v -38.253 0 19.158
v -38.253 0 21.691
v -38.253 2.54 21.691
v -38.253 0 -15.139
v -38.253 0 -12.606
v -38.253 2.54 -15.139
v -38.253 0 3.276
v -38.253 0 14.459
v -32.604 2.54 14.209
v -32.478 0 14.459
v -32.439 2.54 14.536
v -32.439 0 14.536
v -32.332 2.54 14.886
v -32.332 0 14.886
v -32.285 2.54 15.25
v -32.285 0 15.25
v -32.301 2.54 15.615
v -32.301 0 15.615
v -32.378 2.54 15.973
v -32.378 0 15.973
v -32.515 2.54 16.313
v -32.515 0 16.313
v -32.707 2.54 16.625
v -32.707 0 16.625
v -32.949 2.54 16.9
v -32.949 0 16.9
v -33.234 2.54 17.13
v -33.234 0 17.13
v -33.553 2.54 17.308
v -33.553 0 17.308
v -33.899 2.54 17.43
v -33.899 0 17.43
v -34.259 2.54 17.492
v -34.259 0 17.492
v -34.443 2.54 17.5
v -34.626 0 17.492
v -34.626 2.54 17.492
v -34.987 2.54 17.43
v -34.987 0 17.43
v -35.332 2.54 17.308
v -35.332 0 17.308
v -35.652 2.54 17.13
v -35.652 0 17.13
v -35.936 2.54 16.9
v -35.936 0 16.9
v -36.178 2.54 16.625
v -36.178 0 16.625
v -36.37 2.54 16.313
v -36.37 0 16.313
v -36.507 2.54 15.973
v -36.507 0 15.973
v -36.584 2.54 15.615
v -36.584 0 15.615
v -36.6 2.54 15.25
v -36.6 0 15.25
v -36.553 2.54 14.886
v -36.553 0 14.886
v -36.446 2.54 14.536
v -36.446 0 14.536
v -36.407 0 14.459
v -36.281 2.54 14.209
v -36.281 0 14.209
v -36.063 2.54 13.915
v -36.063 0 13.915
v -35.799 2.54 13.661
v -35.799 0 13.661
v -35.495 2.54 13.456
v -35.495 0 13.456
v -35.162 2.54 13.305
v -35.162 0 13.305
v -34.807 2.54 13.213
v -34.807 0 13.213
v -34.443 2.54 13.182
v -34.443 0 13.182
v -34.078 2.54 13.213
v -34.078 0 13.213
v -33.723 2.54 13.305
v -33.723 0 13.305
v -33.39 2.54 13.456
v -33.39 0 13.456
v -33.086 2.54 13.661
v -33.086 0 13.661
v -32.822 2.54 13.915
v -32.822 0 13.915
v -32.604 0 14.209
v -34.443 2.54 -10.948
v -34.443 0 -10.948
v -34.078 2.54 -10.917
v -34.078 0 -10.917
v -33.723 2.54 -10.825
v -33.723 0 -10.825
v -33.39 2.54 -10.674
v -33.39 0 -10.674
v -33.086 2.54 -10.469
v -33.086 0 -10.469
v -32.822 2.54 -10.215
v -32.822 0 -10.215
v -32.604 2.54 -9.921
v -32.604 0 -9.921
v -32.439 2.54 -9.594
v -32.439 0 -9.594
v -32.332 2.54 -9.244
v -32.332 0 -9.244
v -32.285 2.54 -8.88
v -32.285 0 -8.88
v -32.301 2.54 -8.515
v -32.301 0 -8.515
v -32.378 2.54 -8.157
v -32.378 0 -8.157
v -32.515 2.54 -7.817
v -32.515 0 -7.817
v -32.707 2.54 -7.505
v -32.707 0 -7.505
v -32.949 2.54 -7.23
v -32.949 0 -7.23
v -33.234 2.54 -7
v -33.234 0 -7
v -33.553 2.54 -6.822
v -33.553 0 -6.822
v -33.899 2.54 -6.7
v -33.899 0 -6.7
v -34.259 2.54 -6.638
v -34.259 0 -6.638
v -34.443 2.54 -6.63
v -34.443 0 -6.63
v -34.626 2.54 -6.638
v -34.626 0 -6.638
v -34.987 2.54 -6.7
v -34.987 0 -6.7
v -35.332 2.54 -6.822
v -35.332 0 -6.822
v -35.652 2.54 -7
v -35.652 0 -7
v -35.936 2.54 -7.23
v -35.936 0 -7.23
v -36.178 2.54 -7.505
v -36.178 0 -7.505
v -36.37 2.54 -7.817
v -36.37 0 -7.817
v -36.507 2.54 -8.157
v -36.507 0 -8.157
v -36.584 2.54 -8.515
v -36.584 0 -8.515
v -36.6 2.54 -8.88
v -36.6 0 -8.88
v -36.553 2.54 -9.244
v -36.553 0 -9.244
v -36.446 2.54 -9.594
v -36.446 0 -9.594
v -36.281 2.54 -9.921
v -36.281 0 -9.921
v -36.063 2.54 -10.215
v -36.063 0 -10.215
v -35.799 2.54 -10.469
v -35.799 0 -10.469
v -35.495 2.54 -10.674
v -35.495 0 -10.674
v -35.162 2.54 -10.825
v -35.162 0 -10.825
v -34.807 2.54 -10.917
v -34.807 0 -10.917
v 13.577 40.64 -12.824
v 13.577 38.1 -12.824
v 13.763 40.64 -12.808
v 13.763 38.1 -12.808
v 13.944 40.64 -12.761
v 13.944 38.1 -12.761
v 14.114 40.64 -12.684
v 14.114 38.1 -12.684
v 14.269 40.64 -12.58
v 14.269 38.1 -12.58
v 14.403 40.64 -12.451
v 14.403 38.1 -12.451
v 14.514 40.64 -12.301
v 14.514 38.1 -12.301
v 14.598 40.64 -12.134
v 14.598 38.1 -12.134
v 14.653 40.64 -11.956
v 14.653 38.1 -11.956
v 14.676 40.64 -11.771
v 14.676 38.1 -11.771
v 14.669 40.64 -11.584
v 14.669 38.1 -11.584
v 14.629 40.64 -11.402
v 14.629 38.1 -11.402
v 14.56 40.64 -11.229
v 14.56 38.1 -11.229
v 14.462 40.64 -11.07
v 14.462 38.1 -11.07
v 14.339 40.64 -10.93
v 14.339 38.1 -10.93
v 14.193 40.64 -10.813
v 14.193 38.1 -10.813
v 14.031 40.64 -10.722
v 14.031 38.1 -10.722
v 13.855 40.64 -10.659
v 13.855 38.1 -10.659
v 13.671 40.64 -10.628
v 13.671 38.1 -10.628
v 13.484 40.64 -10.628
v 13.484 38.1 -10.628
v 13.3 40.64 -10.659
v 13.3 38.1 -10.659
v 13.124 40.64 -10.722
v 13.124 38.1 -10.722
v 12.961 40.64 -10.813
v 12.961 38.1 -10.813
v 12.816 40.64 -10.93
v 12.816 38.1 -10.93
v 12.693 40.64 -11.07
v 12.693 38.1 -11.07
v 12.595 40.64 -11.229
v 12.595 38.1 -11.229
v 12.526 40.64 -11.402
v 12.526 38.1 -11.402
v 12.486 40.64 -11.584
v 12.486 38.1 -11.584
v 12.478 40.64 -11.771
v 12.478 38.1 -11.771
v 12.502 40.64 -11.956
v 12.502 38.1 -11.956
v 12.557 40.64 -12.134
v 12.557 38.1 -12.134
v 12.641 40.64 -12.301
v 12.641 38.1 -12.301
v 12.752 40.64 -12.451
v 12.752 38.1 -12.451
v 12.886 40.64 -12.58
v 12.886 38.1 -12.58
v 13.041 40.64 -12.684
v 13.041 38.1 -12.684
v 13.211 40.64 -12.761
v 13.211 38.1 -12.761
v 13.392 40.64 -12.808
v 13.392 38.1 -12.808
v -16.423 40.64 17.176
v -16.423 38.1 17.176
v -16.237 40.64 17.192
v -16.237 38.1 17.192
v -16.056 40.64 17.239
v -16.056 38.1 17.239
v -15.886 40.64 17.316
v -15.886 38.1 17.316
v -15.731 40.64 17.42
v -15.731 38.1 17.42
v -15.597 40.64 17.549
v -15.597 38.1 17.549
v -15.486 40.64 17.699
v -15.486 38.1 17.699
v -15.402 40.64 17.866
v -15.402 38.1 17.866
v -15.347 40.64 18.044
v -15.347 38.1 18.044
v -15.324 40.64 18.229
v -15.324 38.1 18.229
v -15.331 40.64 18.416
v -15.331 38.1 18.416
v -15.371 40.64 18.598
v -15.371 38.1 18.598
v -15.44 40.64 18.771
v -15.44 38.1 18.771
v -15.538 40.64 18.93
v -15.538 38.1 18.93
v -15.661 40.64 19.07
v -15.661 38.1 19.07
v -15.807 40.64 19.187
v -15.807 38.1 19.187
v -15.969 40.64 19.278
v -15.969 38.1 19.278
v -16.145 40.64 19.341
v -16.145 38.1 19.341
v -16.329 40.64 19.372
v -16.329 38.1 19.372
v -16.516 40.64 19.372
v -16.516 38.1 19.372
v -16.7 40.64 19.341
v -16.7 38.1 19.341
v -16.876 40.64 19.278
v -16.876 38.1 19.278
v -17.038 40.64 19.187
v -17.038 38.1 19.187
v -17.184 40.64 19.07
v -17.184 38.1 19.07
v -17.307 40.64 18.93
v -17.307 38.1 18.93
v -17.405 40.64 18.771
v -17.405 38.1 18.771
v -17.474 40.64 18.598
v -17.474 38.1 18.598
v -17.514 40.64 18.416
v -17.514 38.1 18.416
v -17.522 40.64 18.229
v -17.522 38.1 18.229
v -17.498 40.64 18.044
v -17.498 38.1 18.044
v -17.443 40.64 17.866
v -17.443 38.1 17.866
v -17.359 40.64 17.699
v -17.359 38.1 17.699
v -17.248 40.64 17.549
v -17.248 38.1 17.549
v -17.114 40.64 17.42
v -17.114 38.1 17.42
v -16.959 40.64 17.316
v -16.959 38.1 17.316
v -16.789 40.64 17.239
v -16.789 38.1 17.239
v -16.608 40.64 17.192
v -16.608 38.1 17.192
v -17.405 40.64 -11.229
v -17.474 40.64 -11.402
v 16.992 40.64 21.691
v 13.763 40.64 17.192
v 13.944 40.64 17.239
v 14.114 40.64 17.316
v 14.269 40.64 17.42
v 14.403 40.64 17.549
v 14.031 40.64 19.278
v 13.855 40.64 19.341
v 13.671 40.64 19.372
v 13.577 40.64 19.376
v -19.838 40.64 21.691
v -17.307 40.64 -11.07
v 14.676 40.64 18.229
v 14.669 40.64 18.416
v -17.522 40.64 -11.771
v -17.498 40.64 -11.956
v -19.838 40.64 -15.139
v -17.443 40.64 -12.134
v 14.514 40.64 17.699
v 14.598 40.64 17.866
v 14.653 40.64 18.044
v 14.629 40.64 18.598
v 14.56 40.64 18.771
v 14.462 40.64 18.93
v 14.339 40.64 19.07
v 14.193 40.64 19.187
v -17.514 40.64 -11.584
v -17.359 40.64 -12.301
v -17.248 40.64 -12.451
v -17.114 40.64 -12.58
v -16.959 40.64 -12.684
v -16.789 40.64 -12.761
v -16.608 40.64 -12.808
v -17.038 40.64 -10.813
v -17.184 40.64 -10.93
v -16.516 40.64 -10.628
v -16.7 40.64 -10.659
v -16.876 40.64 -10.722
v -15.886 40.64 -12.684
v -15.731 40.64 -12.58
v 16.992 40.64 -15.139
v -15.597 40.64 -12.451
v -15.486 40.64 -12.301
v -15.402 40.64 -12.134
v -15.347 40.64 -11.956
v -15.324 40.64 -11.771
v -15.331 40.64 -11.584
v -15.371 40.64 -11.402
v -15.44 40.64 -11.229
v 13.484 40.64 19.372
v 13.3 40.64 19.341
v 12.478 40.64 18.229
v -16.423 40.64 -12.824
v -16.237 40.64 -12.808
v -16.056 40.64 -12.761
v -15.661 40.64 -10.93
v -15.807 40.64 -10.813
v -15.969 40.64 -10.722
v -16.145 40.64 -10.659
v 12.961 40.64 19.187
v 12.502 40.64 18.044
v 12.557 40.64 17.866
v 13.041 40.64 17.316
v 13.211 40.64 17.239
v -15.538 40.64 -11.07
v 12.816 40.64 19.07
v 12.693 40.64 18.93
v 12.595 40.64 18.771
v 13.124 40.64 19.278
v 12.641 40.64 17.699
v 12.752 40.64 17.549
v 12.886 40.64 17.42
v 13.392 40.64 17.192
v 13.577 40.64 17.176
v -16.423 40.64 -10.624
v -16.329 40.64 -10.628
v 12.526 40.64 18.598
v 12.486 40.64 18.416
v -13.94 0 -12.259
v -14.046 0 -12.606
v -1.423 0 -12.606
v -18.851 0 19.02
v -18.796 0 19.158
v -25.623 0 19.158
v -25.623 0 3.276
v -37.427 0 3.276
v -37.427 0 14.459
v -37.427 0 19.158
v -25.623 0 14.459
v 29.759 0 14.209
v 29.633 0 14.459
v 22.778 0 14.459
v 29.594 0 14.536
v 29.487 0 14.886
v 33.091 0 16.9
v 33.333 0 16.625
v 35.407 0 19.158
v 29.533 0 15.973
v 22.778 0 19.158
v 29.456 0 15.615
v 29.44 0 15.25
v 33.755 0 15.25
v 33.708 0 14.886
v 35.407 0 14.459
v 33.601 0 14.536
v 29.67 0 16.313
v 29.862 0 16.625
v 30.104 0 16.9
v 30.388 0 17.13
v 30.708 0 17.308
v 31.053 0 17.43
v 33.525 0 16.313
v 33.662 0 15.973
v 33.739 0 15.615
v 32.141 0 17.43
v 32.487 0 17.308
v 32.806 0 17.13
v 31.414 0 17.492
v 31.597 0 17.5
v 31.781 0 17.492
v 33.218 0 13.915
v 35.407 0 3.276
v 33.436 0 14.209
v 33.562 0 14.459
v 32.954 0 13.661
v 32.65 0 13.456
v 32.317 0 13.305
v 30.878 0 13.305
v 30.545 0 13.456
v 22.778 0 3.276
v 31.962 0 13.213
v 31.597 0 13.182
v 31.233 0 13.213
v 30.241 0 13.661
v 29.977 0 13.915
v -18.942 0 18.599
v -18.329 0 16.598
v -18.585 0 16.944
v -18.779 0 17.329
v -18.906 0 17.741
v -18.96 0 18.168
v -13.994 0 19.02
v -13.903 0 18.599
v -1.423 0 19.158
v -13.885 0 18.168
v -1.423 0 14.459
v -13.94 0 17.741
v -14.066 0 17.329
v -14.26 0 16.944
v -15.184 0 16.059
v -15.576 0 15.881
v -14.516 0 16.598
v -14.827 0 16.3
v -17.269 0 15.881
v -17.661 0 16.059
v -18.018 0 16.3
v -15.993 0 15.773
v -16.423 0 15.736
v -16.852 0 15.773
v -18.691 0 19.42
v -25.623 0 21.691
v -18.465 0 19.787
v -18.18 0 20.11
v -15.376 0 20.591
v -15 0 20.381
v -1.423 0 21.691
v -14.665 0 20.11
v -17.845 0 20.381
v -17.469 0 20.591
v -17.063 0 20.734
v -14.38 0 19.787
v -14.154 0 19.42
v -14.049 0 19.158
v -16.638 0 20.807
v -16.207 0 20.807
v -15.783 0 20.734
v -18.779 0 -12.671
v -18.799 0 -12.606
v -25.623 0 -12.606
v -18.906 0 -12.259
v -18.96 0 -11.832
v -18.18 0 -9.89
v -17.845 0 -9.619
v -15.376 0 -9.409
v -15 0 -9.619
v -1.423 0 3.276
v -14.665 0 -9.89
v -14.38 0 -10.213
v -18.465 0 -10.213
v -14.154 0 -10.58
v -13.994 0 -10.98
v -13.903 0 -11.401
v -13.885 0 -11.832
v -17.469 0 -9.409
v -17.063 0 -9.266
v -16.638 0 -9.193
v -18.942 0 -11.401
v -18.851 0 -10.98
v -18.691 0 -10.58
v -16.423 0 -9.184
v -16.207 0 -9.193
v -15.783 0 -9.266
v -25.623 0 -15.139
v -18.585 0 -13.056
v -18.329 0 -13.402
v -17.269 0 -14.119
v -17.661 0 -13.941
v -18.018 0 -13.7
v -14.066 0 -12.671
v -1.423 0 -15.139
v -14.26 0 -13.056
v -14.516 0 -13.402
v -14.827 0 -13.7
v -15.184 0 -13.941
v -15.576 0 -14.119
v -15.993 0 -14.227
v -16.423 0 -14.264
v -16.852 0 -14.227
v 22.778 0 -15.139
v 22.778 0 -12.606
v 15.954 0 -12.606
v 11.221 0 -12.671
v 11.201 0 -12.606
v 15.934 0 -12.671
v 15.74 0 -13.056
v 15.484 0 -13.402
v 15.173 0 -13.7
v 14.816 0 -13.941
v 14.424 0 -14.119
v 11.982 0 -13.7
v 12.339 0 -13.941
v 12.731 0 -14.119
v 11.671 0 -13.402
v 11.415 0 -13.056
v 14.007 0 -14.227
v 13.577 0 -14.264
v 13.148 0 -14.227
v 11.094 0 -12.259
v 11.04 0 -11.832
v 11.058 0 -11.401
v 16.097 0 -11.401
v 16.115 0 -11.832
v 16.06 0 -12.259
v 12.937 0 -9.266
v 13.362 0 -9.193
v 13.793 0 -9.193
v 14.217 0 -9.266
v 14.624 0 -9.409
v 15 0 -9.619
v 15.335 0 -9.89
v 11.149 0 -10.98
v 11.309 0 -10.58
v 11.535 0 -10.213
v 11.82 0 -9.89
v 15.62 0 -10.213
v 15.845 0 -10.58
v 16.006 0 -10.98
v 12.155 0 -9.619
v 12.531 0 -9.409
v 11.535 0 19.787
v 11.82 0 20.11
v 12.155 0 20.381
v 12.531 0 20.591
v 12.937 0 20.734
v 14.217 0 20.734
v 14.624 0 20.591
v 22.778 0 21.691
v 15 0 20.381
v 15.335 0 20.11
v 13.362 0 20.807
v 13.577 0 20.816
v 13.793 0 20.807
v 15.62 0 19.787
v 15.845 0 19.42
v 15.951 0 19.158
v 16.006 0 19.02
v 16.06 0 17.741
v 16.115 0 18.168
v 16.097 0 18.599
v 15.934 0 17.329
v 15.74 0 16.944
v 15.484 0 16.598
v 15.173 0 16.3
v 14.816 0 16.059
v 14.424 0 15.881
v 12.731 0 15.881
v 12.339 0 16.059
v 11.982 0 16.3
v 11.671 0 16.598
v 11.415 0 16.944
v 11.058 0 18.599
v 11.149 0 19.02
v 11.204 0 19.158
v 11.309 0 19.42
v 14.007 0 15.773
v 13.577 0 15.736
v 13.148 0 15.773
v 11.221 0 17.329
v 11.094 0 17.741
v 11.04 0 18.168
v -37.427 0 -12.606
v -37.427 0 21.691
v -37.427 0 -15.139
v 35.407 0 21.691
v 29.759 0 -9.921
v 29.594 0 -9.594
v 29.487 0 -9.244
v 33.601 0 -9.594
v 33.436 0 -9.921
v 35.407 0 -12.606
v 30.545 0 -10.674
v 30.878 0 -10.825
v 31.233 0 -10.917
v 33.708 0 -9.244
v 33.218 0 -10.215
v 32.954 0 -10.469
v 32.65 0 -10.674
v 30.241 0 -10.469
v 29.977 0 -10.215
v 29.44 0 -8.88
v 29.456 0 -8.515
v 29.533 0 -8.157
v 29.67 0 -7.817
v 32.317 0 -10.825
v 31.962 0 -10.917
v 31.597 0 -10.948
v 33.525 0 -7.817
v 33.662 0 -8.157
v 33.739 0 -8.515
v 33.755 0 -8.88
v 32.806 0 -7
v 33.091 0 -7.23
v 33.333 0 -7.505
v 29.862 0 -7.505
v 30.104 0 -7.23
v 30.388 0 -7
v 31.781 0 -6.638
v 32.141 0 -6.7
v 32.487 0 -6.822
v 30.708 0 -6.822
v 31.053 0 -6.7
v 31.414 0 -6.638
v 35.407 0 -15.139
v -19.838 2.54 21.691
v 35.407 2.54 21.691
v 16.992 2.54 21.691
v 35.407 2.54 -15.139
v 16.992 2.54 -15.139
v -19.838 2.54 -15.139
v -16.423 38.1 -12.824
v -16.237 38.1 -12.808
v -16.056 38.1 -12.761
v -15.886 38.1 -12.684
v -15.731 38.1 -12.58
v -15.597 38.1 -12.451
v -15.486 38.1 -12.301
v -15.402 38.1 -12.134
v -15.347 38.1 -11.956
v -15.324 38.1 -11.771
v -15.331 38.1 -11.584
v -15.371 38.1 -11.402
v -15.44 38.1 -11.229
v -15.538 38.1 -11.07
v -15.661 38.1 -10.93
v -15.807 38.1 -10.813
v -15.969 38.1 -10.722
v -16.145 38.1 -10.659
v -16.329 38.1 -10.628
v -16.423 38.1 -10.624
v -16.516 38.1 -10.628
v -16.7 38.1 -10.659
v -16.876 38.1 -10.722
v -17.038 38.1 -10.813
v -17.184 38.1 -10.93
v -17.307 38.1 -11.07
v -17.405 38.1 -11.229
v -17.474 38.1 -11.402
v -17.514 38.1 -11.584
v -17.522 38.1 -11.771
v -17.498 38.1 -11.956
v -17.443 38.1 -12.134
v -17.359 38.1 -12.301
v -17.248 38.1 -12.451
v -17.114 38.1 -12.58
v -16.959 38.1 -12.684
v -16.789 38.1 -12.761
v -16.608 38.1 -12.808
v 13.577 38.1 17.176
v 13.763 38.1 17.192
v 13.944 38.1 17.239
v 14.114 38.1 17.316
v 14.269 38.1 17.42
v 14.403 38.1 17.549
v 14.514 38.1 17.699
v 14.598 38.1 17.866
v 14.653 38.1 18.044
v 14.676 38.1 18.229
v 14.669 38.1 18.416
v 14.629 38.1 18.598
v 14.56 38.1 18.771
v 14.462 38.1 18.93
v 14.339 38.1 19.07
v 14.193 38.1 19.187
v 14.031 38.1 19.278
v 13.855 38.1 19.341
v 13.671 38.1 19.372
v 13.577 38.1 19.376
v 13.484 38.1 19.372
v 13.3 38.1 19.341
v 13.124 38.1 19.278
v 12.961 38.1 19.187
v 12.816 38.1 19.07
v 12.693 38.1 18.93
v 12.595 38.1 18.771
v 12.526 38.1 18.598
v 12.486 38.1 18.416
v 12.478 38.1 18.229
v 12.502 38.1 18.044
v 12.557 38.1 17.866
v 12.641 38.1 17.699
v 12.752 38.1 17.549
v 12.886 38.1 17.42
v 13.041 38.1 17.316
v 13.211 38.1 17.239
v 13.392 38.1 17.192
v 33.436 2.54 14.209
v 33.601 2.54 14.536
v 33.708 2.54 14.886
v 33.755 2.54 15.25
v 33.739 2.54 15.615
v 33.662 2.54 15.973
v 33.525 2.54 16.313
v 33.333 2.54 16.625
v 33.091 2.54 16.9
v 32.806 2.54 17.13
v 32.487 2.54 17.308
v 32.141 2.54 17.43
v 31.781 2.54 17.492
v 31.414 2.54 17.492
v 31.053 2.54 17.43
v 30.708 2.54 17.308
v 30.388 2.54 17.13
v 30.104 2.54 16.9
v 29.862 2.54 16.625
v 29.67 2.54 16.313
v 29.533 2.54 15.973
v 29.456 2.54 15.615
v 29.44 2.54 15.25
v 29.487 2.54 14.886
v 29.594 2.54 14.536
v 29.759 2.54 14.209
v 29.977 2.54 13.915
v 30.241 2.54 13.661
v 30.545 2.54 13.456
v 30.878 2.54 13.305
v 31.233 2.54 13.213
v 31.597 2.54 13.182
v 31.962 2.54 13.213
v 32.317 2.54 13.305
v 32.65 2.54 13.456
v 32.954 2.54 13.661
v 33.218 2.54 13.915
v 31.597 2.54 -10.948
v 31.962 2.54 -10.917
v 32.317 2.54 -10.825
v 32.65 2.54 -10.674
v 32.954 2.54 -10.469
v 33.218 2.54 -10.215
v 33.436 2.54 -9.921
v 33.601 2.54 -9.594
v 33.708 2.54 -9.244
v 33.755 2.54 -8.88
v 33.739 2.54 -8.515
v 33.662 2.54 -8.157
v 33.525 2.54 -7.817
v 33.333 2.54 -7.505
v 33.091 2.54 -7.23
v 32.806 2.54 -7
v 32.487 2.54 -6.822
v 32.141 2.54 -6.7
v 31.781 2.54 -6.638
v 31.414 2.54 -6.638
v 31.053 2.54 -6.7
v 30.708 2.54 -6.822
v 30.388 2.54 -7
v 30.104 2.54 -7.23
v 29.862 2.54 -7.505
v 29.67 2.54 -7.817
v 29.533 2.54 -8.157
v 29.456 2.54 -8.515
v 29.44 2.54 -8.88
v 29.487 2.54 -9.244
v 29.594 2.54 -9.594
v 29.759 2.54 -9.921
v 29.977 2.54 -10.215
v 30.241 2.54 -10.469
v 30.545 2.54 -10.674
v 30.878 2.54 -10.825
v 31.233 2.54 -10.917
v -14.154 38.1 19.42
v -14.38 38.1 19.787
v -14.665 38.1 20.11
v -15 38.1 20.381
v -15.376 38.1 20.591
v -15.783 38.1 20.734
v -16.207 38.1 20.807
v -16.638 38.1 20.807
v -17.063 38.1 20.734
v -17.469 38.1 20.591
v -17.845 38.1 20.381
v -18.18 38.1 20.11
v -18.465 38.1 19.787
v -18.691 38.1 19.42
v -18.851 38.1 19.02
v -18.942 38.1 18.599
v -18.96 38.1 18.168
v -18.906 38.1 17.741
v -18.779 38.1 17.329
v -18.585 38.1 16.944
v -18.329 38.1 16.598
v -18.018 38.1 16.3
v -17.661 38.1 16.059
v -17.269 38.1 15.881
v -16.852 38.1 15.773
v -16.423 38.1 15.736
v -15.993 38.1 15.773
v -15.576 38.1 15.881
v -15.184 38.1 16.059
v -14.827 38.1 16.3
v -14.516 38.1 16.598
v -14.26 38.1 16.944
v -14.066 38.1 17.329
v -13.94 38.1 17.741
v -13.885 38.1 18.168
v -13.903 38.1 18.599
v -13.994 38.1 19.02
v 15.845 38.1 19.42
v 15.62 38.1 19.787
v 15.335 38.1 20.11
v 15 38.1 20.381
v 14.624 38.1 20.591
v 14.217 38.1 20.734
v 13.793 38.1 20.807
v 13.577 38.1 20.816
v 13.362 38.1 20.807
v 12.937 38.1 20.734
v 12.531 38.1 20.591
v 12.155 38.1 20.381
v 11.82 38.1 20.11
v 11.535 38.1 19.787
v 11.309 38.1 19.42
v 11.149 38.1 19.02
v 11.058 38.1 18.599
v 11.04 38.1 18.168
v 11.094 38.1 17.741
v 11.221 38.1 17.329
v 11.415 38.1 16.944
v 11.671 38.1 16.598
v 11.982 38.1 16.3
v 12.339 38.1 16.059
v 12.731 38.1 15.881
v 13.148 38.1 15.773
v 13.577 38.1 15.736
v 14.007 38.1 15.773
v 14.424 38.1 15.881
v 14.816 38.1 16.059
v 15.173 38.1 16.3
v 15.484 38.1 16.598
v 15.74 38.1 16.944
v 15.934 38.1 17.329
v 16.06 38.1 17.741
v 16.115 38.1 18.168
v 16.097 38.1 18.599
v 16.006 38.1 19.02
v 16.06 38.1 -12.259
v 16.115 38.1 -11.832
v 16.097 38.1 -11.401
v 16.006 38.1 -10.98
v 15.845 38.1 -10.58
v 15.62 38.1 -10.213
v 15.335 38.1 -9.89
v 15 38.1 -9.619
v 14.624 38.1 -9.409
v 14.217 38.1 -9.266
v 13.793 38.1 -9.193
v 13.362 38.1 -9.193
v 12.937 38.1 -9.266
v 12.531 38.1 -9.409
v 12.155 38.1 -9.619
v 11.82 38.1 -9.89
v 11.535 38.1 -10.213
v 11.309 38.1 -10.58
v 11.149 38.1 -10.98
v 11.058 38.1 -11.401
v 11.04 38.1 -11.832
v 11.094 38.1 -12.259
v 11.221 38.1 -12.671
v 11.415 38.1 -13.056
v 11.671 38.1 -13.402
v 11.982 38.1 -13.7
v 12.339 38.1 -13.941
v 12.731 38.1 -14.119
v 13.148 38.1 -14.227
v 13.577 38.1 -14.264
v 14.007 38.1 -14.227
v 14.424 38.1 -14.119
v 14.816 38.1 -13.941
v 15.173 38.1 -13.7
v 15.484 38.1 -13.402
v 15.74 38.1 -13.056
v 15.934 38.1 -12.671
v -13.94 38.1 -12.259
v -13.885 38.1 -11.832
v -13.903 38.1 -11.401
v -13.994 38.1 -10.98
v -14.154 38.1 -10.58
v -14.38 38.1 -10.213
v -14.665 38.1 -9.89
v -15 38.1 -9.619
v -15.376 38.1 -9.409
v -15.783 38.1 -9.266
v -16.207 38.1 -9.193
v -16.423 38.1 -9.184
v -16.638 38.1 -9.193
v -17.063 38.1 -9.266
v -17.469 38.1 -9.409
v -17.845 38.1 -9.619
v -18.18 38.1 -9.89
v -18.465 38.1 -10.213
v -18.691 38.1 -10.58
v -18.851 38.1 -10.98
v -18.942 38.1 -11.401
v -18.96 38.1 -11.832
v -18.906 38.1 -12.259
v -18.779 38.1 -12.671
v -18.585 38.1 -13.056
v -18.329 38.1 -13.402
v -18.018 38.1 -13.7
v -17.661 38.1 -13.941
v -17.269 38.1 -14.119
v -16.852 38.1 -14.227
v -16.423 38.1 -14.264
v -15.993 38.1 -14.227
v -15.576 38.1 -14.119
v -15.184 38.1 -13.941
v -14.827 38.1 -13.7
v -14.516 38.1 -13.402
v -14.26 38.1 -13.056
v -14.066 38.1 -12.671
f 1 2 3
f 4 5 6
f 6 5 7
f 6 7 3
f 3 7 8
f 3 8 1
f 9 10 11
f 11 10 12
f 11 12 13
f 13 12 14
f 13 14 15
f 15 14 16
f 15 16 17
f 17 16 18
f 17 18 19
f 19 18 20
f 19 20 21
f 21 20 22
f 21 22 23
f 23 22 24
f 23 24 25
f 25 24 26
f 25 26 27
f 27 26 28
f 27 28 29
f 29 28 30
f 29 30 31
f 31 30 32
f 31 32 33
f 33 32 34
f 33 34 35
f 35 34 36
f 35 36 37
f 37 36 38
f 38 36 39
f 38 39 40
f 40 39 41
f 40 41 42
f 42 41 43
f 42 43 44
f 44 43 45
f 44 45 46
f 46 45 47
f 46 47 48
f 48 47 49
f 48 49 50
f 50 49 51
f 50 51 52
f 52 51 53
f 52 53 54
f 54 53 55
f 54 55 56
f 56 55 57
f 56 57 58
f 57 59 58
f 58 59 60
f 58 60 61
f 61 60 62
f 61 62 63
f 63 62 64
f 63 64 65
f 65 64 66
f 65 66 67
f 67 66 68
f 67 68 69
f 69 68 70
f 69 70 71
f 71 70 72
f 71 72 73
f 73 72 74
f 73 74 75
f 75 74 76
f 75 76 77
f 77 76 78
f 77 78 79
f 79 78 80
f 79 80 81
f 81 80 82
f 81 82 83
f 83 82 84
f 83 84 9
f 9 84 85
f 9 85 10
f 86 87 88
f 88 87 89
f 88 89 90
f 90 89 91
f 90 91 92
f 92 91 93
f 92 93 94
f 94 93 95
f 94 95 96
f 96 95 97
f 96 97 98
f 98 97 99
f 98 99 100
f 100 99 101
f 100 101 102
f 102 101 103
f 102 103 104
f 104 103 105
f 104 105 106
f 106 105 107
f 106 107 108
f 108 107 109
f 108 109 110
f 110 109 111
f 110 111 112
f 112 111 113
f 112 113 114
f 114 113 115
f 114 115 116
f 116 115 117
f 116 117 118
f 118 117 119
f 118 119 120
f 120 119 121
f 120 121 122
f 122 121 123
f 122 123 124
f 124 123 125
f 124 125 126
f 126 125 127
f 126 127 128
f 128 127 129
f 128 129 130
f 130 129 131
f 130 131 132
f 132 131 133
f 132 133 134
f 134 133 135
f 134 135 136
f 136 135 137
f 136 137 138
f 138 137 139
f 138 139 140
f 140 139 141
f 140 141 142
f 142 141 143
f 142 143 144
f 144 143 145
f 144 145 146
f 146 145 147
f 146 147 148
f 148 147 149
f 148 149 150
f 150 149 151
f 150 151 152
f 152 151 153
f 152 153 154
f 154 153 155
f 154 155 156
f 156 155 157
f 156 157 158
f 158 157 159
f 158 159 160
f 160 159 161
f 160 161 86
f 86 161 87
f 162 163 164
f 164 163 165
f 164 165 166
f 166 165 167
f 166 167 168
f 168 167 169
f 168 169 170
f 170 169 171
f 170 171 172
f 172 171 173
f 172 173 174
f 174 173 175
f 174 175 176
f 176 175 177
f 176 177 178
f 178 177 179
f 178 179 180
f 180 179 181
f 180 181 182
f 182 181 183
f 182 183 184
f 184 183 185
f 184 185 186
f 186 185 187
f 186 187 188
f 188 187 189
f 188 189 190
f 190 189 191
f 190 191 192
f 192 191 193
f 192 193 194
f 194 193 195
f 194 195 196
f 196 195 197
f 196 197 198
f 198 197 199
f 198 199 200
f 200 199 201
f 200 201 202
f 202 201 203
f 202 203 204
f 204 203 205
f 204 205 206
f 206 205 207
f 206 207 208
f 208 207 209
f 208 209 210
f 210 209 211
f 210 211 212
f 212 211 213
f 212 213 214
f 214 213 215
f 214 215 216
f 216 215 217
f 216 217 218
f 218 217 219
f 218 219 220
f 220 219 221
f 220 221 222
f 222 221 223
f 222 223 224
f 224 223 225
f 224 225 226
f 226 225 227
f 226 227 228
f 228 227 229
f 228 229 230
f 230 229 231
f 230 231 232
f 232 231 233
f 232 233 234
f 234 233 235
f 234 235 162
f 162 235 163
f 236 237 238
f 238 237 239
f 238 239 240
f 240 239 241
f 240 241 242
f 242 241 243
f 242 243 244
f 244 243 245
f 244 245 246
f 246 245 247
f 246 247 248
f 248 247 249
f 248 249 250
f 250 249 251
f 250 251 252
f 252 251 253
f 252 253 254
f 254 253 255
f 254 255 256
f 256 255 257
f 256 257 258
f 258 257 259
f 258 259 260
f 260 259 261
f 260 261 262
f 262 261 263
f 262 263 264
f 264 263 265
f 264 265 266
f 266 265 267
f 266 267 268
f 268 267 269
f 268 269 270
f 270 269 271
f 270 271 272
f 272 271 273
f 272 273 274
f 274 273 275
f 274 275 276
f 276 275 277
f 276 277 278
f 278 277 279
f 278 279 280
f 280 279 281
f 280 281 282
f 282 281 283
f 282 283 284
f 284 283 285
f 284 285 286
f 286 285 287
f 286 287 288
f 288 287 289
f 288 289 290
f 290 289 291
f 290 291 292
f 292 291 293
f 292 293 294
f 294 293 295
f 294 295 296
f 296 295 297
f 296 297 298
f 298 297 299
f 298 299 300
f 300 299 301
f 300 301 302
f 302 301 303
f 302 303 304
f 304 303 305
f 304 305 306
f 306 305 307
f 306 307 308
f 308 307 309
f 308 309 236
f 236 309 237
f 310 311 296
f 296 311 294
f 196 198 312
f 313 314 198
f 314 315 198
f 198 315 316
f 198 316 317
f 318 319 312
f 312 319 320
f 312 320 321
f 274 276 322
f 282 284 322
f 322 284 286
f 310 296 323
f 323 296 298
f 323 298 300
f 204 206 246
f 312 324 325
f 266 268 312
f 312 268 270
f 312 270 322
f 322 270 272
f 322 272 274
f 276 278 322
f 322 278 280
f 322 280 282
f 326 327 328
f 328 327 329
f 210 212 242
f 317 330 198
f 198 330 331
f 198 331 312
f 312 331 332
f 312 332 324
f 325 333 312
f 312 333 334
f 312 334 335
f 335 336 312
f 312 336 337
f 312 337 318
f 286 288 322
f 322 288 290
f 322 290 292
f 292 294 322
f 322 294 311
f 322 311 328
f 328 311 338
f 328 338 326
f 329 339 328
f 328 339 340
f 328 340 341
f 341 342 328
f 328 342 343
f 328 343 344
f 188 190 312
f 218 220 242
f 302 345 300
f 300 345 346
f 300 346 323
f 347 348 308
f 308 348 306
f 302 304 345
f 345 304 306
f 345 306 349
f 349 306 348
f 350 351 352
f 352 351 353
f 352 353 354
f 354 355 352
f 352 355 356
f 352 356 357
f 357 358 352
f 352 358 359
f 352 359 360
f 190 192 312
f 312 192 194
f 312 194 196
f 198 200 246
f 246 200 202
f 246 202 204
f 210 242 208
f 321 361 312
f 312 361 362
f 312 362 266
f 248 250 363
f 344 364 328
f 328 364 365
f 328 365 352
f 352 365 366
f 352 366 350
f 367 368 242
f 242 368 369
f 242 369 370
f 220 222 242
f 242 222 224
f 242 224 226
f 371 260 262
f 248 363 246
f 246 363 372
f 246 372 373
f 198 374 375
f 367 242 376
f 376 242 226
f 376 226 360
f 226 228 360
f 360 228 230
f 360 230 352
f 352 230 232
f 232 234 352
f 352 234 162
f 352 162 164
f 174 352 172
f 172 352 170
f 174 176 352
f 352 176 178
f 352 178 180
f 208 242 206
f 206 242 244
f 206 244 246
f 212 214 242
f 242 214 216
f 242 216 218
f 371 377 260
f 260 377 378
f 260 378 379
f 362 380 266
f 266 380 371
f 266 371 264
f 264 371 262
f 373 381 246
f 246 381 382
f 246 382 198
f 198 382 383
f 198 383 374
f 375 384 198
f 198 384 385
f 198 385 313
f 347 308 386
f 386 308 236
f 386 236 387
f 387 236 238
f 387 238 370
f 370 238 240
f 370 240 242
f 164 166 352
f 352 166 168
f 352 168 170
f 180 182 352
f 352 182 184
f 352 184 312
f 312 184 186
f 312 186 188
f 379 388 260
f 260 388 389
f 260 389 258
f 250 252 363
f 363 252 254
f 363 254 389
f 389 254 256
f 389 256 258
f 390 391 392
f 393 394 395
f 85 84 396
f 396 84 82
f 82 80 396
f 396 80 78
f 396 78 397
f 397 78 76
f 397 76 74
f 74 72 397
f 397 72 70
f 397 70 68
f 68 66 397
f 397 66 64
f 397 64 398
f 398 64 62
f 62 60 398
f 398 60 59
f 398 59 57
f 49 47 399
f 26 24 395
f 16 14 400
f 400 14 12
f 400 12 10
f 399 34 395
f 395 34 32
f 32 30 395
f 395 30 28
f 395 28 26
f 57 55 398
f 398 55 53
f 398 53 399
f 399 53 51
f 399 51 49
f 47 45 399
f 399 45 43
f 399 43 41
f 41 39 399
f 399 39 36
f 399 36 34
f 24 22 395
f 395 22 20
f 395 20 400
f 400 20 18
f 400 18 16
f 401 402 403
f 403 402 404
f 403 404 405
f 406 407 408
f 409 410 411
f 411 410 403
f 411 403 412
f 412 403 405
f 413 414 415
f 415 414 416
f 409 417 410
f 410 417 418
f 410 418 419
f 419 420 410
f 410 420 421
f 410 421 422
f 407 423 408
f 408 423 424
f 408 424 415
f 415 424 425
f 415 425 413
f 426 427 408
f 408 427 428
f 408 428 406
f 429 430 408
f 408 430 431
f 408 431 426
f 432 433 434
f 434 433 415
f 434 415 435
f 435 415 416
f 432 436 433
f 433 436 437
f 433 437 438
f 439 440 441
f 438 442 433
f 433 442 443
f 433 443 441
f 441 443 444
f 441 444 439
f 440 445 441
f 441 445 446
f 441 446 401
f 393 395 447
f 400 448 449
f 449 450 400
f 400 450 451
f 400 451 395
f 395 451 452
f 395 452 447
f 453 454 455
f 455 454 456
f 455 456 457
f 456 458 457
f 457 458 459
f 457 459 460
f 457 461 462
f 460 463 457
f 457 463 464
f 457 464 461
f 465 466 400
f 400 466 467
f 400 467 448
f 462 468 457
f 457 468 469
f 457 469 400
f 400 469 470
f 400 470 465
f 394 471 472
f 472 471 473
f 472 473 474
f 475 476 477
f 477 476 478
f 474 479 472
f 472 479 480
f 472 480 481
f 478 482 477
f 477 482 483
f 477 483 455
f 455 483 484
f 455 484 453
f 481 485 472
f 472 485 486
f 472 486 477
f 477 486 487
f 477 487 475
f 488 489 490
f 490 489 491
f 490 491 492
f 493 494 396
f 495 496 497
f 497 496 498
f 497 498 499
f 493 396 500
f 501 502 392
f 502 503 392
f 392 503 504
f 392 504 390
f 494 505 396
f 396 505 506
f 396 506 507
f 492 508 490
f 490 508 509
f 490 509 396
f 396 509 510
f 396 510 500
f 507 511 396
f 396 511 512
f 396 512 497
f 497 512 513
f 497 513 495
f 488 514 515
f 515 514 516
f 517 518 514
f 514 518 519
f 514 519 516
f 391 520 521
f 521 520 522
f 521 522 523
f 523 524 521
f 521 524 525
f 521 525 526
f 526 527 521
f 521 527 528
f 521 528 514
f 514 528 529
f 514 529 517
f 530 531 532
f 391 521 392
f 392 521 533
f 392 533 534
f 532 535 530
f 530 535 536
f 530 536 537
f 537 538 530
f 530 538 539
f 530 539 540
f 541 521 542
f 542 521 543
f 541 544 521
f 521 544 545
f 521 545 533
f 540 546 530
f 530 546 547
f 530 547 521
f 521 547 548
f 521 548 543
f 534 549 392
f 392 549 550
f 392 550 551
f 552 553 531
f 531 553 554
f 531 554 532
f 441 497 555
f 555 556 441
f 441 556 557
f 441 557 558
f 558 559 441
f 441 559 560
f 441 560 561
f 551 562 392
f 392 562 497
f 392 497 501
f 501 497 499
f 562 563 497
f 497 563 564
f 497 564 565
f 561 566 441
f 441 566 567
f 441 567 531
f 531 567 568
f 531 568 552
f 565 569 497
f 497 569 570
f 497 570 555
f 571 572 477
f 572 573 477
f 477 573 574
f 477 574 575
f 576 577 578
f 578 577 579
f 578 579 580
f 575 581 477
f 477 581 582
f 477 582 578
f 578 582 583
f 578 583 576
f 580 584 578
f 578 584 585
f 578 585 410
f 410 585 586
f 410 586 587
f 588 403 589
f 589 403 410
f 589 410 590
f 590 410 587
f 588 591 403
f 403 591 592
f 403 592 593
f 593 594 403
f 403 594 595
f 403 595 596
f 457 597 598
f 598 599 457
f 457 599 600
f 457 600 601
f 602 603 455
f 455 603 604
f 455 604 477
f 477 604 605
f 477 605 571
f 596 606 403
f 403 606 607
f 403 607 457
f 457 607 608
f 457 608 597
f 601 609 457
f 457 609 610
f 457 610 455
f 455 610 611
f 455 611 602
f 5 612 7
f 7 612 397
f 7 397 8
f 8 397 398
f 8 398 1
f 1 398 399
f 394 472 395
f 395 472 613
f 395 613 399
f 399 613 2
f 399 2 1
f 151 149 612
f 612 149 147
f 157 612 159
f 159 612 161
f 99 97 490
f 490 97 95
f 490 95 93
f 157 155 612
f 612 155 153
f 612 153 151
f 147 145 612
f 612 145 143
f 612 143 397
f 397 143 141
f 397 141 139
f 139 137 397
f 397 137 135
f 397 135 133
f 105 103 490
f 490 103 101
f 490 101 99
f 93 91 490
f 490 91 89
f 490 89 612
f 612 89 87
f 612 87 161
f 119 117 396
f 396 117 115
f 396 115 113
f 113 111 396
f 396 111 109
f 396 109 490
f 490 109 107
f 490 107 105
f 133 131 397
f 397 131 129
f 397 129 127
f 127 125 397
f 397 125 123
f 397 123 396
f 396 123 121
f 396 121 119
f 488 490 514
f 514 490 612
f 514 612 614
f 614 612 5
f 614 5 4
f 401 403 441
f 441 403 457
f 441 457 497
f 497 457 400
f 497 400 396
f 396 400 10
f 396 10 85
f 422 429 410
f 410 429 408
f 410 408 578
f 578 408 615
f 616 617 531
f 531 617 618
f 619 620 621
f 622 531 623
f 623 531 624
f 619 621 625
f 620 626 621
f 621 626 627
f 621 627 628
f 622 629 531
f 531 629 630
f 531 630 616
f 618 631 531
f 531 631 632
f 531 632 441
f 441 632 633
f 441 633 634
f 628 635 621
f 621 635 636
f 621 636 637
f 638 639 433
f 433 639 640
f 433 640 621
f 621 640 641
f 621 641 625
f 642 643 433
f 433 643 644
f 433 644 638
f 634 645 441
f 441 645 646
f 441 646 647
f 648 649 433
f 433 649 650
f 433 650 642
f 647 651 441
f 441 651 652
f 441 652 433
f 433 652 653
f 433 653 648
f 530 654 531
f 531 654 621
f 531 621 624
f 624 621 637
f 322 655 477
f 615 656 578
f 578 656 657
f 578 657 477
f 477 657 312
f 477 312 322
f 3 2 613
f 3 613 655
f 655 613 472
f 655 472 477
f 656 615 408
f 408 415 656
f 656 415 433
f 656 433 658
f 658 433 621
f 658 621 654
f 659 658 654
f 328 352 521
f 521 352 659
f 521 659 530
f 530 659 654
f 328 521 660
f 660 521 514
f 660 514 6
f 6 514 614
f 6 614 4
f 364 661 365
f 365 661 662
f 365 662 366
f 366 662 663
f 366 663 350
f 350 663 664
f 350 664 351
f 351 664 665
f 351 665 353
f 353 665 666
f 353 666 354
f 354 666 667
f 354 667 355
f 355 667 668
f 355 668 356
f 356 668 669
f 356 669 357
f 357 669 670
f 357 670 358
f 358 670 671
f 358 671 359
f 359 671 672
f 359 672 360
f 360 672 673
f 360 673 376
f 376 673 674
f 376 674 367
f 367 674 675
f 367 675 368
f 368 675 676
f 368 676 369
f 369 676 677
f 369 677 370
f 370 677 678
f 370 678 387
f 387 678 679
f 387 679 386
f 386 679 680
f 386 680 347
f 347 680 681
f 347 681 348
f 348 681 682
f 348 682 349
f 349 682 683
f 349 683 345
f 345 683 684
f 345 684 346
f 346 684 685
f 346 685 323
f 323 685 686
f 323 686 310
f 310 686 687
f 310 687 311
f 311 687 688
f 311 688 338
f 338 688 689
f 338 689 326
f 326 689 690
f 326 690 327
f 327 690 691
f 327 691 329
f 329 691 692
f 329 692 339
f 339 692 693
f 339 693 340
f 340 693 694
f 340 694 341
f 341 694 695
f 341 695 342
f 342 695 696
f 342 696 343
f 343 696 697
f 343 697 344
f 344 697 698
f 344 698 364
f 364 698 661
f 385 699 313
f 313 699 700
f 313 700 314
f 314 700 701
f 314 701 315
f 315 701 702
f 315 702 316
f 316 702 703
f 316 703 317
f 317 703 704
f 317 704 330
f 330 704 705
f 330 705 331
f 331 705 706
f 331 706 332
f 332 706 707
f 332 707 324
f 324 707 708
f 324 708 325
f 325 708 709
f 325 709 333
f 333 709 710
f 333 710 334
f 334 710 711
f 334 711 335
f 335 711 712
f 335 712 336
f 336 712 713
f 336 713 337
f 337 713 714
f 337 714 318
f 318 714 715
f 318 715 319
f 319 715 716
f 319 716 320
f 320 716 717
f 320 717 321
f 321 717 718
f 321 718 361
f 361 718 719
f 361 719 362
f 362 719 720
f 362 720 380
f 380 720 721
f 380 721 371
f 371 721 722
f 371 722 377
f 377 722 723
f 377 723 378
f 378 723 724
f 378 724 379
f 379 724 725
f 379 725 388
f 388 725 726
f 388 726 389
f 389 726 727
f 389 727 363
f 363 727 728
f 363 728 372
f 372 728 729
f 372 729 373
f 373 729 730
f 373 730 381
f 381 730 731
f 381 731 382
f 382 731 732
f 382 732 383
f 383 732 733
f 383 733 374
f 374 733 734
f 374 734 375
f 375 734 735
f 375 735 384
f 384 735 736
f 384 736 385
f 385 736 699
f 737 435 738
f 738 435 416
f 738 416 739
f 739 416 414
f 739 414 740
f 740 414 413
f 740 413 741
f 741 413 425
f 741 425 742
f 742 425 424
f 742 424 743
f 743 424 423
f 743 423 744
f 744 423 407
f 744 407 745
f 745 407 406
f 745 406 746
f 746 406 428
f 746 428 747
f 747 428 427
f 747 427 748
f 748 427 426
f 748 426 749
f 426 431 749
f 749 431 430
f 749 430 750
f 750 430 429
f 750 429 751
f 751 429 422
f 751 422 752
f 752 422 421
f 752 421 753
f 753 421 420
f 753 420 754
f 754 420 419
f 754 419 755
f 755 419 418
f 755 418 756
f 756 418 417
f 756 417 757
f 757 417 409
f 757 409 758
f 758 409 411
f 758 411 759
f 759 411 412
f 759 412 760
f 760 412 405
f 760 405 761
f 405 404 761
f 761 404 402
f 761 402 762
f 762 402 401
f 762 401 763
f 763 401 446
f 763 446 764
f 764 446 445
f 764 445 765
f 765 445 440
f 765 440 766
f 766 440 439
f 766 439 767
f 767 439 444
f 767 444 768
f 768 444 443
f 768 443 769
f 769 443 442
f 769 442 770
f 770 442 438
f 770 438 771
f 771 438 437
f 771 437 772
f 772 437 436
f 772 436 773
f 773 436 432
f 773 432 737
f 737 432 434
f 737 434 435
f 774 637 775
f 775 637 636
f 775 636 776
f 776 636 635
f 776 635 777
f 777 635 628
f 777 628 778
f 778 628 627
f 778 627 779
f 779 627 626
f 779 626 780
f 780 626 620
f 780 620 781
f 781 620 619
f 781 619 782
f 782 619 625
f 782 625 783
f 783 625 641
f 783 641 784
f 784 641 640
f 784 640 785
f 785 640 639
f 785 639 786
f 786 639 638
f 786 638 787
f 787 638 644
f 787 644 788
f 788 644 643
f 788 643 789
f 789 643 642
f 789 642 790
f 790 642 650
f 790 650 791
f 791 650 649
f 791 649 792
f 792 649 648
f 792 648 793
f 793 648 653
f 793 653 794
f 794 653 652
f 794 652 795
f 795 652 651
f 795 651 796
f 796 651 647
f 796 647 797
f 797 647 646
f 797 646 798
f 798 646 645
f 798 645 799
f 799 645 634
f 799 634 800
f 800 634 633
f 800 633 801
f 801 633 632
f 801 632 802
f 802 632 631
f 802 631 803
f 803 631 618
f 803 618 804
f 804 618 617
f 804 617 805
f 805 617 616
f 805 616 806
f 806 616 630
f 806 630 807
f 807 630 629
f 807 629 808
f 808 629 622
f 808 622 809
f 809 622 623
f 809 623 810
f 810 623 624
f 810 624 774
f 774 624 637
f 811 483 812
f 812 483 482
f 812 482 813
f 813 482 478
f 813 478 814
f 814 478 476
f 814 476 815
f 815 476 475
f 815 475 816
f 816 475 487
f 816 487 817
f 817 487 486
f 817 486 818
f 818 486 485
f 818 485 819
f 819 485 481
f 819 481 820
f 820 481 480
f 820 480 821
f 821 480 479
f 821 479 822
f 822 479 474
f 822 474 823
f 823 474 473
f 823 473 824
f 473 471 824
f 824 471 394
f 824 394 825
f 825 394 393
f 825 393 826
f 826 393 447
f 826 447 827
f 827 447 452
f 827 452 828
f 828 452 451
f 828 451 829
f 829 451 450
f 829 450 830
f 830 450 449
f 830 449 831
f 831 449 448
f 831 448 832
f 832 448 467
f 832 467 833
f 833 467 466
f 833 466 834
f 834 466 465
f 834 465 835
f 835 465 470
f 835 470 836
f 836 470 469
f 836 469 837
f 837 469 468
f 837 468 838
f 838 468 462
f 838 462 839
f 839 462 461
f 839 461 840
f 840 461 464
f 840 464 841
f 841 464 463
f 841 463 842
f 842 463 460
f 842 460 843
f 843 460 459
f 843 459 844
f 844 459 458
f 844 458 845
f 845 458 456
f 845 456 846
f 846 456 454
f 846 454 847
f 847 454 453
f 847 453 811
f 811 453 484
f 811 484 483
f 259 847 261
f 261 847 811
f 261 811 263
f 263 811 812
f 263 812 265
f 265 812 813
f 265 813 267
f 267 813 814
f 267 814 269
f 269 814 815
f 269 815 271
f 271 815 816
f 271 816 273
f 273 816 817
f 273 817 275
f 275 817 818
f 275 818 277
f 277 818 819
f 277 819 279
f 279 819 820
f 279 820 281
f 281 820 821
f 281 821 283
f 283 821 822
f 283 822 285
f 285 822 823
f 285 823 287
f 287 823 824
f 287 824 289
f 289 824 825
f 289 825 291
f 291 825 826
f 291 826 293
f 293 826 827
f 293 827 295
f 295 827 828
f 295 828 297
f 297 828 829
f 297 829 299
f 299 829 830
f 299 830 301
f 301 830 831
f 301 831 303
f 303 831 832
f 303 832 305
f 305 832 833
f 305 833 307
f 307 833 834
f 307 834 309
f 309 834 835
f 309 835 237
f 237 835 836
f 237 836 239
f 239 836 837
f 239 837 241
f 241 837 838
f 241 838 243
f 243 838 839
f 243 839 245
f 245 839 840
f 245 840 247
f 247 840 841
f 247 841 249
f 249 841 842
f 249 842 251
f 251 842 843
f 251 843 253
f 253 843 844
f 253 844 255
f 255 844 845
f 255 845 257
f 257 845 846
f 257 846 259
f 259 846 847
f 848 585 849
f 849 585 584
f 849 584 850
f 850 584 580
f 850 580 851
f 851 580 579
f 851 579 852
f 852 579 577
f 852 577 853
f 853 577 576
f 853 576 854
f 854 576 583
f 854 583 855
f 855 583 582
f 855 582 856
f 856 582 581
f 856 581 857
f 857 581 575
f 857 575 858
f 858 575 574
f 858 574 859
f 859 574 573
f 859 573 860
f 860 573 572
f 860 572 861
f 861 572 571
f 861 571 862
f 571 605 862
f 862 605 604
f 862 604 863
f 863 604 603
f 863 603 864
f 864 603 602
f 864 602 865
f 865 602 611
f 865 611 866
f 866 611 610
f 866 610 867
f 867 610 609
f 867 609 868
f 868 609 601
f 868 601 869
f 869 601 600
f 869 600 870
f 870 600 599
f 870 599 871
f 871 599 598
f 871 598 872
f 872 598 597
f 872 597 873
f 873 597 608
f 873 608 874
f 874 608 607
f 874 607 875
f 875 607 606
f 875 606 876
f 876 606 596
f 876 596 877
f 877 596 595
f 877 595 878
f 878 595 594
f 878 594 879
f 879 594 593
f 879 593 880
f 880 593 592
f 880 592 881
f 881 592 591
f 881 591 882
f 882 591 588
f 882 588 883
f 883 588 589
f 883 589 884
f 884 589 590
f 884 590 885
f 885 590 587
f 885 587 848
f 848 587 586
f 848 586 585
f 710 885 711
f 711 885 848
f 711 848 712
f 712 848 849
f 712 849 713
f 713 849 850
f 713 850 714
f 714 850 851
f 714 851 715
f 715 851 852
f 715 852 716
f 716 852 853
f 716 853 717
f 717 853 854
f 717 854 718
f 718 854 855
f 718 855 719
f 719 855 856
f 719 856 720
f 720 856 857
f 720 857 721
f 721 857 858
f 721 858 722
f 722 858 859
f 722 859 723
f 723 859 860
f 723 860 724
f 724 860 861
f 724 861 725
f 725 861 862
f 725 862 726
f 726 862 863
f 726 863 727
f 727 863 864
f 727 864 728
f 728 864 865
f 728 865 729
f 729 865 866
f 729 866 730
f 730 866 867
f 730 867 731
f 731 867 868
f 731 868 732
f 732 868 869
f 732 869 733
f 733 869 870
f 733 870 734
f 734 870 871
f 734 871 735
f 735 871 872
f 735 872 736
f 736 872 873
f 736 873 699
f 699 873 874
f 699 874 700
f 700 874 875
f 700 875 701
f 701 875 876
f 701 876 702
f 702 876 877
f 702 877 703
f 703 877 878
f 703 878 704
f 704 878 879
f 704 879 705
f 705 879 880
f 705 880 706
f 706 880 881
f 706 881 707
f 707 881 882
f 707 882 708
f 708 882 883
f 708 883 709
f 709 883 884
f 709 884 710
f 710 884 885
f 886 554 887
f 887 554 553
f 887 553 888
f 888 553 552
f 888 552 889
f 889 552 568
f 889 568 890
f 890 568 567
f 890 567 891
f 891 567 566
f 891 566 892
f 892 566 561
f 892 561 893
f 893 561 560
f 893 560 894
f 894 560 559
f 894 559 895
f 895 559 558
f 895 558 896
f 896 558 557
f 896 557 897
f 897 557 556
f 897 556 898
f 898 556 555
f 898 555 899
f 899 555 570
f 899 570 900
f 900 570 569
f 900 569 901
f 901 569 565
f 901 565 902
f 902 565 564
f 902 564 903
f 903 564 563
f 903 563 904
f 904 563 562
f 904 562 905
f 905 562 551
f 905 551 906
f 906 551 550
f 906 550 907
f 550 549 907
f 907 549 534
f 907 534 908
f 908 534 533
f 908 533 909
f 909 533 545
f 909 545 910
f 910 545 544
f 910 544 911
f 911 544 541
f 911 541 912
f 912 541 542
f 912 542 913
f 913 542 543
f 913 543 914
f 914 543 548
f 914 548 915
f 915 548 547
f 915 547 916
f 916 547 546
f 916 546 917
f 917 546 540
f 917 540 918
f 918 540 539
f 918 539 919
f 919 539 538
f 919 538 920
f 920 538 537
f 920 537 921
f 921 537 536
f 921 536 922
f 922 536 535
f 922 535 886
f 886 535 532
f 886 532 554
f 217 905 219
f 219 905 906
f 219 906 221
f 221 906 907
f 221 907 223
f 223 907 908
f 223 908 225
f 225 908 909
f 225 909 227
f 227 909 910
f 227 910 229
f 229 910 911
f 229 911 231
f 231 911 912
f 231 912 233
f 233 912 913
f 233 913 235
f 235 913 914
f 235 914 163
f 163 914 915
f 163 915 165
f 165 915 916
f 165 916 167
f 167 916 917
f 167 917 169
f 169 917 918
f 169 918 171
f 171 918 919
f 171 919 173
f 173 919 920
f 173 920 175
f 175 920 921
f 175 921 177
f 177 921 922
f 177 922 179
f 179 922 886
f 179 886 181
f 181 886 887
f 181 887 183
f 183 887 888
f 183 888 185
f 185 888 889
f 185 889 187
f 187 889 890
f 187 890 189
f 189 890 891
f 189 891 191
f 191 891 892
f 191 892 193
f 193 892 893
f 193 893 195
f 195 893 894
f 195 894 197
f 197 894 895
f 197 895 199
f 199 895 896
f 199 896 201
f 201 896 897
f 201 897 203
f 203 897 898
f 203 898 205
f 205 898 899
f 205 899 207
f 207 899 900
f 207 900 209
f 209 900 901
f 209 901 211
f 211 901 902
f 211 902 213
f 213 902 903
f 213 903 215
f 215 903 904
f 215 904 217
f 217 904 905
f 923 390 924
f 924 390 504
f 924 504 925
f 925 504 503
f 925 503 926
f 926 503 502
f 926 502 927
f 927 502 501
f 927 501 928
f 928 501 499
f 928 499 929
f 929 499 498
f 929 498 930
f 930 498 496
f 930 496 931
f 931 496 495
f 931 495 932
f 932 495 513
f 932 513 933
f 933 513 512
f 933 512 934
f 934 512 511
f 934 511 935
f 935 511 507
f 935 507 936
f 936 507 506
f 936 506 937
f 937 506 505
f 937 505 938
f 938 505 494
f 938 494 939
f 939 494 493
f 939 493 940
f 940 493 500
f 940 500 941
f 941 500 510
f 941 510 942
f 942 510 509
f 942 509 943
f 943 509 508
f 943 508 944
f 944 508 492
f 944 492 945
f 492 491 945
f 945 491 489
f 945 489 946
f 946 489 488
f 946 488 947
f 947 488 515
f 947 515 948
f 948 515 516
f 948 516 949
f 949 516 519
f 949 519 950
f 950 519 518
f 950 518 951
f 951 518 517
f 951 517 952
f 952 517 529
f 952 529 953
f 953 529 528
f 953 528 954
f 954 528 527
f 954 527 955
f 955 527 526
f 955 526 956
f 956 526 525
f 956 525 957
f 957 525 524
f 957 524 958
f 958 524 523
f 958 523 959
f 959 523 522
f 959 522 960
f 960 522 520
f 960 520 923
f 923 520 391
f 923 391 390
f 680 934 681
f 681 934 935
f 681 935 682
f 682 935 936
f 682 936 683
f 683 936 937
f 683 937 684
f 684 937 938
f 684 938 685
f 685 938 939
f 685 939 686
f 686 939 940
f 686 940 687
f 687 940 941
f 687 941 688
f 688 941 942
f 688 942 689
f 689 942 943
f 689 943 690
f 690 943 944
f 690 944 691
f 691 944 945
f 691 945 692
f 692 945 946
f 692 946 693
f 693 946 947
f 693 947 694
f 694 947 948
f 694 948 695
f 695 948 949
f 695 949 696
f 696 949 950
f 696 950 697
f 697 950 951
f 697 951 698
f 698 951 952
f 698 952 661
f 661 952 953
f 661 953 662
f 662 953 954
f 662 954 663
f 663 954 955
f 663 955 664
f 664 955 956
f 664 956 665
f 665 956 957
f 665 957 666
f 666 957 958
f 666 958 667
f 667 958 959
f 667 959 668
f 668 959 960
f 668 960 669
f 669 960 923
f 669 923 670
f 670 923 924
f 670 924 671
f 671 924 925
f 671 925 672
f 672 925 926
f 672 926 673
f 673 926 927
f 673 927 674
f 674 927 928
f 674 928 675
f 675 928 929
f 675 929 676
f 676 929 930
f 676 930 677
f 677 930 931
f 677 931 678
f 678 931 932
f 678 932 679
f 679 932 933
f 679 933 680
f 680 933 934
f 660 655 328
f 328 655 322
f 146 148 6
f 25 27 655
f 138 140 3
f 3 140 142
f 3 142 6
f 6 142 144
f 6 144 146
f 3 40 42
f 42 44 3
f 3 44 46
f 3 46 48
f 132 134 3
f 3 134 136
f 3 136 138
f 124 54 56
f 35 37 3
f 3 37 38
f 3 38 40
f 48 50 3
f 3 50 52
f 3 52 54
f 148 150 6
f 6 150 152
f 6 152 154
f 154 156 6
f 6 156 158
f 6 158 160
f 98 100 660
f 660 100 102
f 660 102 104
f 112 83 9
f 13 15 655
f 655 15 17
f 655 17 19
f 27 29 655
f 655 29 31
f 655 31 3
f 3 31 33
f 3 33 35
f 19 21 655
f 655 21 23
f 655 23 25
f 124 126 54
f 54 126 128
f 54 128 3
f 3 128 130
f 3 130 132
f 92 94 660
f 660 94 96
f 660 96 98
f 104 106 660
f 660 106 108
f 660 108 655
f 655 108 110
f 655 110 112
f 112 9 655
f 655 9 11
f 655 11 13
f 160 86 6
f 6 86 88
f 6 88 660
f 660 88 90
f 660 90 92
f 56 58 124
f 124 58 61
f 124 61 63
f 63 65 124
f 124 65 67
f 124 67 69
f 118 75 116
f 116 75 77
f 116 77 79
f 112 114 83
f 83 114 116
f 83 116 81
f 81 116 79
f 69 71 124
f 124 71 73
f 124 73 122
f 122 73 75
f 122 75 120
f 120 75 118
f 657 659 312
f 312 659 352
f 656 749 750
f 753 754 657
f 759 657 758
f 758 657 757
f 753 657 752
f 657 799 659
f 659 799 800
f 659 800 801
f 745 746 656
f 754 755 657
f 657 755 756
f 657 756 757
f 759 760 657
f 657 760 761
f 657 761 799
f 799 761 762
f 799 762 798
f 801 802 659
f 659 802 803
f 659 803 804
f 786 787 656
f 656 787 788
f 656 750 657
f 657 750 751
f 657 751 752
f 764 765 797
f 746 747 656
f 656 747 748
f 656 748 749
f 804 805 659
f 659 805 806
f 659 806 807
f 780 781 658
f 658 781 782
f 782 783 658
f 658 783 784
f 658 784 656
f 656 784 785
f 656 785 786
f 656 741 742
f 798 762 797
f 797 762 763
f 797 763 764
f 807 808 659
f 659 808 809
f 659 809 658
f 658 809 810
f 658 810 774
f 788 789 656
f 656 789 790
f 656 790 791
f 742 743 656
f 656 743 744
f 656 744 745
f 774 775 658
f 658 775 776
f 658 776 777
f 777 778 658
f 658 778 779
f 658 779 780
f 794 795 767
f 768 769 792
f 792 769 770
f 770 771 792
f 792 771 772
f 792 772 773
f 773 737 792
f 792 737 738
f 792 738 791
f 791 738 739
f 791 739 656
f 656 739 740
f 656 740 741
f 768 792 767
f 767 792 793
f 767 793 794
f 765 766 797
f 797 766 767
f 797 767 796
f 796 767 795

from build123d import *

# Parameters (mm, degrees)
SKETCH1_W           = 73.66
SKETCH1_H           = 36.83
SKETCH1_R           = 1.0999978
SKETCH1_R_2         = 2.159
BOSS_EXTRUDE1_DEPTH = 40.64
SKETCH3_R           = 2.54
CUT_EXTRUDE2_DEPTH  = 38.1
SKETCH4_W           = 18.415
SKETCH4_H           = 36.83
CUT_EXTRUDE3_DEPTH  = 38.1


with BuildPart() as part:
    # Sketch1 → Boss-Extrude1 (new body)
    with BuildSketch(Plane(origin=(0, 0, 0), x_dir=(1, 0, 0), z_dir=(0, 1, 0))):
        with Locations((-1.422532637, -3.27613577)):
            Rectangle(SKETCH1_W, SKETCH1_H)
        with Locations(Location((-16.422528037, 11.72385963, 0), (0, 0, 270))):
            Circle(SKETCH1_R, mode=Mode.SUBTRACT)
        with Locations(Location((13.577462763, 11.72385963, 0), (0, 0, 90))):
            Circle(SKETCH1_R, mode=Mode.SUBTRACT)
        with Locations(Location((13.577462763, -18.27613117, 0), (0, 0, 270))):
            Circle(SKETCH1_R, mode=Mode.SUBTRACT)
        with Locations(Location((-16.422528037, -18.27613117, 0), (0, 0, 90))):
            Circle(SKETCH1_R, mode=Mode.SUBTRACT)
        with Locations(Location((31.597467363, -15.34113577, 0), (0, 0, 270))):
            Circle(SKETCH1_R_2, mode=Mode.SUBTRACT)
        with Locations(Location((31.597467363, 8.78886423, 0), (0, 0, 90))):
            Circle(SKETCH1_R_2, mode=Mode.SUBTRACT)
        with Locations(Location((-34.442532637, -15.34113577, 0), (0, 0, 90))):
            Circle(SKETCH1_R_2, mode=Mode.SUBTRACT)
        with Locations(Location((-34.442532637, 8.78886423, 0), (0, 0, 270))):
            Circle(SKETCH1_R_2, mode=Mode.SUBTRACT)
    extrude(amount=BOSS_EXTRUDE1_DEPTH)

    # Sketch3 → Cut-Extrude2 (cut)
    with BuildSketch(Plane.XZ):
        with Locations(Location((-16.422528037, 18.27613117, 0), (0, 0, 270))):
            Circle(SKETCH3_R)
        with Locations(Location((13.577462763, 18.27613117, 0), (0, 0, 270))):
            Circle(SKETCH3_R)
        with Locations(Location((13.577462763, -11.72385963, 0), (0, 0, 270))):
            Circle(SKETCH3_R)
        with Locations(Location((-16.422528037, -11.72385963, 0), (0, 0, 270))):
            Circle(SKETCH3_R)
    extrude(amount=-CUT_EXTRUDE2_DEPTH, mode=Mode.SUBTRACT)

    # Sketch4 → Cut-Extrude3 (cut)
    with BuildSketch(Plane(origin=(0, 40.64, 0), x_dir=(1, 0, 0), z_dir=(0, 1, 0))):
        with Locations((-29.045032637, -3.27613577)):
            Rectangle(SKETCH4_W, SKETCH4_H)
        with Locations((26.199967363, -3.27613577)):
            Rectangle(SKETCH4_W, SKETCH4_H)
    extrude(amount=-CUT_EXTRUDE3_DEPTH, mode=Mode.SUBTRACT)


solid = part.part
